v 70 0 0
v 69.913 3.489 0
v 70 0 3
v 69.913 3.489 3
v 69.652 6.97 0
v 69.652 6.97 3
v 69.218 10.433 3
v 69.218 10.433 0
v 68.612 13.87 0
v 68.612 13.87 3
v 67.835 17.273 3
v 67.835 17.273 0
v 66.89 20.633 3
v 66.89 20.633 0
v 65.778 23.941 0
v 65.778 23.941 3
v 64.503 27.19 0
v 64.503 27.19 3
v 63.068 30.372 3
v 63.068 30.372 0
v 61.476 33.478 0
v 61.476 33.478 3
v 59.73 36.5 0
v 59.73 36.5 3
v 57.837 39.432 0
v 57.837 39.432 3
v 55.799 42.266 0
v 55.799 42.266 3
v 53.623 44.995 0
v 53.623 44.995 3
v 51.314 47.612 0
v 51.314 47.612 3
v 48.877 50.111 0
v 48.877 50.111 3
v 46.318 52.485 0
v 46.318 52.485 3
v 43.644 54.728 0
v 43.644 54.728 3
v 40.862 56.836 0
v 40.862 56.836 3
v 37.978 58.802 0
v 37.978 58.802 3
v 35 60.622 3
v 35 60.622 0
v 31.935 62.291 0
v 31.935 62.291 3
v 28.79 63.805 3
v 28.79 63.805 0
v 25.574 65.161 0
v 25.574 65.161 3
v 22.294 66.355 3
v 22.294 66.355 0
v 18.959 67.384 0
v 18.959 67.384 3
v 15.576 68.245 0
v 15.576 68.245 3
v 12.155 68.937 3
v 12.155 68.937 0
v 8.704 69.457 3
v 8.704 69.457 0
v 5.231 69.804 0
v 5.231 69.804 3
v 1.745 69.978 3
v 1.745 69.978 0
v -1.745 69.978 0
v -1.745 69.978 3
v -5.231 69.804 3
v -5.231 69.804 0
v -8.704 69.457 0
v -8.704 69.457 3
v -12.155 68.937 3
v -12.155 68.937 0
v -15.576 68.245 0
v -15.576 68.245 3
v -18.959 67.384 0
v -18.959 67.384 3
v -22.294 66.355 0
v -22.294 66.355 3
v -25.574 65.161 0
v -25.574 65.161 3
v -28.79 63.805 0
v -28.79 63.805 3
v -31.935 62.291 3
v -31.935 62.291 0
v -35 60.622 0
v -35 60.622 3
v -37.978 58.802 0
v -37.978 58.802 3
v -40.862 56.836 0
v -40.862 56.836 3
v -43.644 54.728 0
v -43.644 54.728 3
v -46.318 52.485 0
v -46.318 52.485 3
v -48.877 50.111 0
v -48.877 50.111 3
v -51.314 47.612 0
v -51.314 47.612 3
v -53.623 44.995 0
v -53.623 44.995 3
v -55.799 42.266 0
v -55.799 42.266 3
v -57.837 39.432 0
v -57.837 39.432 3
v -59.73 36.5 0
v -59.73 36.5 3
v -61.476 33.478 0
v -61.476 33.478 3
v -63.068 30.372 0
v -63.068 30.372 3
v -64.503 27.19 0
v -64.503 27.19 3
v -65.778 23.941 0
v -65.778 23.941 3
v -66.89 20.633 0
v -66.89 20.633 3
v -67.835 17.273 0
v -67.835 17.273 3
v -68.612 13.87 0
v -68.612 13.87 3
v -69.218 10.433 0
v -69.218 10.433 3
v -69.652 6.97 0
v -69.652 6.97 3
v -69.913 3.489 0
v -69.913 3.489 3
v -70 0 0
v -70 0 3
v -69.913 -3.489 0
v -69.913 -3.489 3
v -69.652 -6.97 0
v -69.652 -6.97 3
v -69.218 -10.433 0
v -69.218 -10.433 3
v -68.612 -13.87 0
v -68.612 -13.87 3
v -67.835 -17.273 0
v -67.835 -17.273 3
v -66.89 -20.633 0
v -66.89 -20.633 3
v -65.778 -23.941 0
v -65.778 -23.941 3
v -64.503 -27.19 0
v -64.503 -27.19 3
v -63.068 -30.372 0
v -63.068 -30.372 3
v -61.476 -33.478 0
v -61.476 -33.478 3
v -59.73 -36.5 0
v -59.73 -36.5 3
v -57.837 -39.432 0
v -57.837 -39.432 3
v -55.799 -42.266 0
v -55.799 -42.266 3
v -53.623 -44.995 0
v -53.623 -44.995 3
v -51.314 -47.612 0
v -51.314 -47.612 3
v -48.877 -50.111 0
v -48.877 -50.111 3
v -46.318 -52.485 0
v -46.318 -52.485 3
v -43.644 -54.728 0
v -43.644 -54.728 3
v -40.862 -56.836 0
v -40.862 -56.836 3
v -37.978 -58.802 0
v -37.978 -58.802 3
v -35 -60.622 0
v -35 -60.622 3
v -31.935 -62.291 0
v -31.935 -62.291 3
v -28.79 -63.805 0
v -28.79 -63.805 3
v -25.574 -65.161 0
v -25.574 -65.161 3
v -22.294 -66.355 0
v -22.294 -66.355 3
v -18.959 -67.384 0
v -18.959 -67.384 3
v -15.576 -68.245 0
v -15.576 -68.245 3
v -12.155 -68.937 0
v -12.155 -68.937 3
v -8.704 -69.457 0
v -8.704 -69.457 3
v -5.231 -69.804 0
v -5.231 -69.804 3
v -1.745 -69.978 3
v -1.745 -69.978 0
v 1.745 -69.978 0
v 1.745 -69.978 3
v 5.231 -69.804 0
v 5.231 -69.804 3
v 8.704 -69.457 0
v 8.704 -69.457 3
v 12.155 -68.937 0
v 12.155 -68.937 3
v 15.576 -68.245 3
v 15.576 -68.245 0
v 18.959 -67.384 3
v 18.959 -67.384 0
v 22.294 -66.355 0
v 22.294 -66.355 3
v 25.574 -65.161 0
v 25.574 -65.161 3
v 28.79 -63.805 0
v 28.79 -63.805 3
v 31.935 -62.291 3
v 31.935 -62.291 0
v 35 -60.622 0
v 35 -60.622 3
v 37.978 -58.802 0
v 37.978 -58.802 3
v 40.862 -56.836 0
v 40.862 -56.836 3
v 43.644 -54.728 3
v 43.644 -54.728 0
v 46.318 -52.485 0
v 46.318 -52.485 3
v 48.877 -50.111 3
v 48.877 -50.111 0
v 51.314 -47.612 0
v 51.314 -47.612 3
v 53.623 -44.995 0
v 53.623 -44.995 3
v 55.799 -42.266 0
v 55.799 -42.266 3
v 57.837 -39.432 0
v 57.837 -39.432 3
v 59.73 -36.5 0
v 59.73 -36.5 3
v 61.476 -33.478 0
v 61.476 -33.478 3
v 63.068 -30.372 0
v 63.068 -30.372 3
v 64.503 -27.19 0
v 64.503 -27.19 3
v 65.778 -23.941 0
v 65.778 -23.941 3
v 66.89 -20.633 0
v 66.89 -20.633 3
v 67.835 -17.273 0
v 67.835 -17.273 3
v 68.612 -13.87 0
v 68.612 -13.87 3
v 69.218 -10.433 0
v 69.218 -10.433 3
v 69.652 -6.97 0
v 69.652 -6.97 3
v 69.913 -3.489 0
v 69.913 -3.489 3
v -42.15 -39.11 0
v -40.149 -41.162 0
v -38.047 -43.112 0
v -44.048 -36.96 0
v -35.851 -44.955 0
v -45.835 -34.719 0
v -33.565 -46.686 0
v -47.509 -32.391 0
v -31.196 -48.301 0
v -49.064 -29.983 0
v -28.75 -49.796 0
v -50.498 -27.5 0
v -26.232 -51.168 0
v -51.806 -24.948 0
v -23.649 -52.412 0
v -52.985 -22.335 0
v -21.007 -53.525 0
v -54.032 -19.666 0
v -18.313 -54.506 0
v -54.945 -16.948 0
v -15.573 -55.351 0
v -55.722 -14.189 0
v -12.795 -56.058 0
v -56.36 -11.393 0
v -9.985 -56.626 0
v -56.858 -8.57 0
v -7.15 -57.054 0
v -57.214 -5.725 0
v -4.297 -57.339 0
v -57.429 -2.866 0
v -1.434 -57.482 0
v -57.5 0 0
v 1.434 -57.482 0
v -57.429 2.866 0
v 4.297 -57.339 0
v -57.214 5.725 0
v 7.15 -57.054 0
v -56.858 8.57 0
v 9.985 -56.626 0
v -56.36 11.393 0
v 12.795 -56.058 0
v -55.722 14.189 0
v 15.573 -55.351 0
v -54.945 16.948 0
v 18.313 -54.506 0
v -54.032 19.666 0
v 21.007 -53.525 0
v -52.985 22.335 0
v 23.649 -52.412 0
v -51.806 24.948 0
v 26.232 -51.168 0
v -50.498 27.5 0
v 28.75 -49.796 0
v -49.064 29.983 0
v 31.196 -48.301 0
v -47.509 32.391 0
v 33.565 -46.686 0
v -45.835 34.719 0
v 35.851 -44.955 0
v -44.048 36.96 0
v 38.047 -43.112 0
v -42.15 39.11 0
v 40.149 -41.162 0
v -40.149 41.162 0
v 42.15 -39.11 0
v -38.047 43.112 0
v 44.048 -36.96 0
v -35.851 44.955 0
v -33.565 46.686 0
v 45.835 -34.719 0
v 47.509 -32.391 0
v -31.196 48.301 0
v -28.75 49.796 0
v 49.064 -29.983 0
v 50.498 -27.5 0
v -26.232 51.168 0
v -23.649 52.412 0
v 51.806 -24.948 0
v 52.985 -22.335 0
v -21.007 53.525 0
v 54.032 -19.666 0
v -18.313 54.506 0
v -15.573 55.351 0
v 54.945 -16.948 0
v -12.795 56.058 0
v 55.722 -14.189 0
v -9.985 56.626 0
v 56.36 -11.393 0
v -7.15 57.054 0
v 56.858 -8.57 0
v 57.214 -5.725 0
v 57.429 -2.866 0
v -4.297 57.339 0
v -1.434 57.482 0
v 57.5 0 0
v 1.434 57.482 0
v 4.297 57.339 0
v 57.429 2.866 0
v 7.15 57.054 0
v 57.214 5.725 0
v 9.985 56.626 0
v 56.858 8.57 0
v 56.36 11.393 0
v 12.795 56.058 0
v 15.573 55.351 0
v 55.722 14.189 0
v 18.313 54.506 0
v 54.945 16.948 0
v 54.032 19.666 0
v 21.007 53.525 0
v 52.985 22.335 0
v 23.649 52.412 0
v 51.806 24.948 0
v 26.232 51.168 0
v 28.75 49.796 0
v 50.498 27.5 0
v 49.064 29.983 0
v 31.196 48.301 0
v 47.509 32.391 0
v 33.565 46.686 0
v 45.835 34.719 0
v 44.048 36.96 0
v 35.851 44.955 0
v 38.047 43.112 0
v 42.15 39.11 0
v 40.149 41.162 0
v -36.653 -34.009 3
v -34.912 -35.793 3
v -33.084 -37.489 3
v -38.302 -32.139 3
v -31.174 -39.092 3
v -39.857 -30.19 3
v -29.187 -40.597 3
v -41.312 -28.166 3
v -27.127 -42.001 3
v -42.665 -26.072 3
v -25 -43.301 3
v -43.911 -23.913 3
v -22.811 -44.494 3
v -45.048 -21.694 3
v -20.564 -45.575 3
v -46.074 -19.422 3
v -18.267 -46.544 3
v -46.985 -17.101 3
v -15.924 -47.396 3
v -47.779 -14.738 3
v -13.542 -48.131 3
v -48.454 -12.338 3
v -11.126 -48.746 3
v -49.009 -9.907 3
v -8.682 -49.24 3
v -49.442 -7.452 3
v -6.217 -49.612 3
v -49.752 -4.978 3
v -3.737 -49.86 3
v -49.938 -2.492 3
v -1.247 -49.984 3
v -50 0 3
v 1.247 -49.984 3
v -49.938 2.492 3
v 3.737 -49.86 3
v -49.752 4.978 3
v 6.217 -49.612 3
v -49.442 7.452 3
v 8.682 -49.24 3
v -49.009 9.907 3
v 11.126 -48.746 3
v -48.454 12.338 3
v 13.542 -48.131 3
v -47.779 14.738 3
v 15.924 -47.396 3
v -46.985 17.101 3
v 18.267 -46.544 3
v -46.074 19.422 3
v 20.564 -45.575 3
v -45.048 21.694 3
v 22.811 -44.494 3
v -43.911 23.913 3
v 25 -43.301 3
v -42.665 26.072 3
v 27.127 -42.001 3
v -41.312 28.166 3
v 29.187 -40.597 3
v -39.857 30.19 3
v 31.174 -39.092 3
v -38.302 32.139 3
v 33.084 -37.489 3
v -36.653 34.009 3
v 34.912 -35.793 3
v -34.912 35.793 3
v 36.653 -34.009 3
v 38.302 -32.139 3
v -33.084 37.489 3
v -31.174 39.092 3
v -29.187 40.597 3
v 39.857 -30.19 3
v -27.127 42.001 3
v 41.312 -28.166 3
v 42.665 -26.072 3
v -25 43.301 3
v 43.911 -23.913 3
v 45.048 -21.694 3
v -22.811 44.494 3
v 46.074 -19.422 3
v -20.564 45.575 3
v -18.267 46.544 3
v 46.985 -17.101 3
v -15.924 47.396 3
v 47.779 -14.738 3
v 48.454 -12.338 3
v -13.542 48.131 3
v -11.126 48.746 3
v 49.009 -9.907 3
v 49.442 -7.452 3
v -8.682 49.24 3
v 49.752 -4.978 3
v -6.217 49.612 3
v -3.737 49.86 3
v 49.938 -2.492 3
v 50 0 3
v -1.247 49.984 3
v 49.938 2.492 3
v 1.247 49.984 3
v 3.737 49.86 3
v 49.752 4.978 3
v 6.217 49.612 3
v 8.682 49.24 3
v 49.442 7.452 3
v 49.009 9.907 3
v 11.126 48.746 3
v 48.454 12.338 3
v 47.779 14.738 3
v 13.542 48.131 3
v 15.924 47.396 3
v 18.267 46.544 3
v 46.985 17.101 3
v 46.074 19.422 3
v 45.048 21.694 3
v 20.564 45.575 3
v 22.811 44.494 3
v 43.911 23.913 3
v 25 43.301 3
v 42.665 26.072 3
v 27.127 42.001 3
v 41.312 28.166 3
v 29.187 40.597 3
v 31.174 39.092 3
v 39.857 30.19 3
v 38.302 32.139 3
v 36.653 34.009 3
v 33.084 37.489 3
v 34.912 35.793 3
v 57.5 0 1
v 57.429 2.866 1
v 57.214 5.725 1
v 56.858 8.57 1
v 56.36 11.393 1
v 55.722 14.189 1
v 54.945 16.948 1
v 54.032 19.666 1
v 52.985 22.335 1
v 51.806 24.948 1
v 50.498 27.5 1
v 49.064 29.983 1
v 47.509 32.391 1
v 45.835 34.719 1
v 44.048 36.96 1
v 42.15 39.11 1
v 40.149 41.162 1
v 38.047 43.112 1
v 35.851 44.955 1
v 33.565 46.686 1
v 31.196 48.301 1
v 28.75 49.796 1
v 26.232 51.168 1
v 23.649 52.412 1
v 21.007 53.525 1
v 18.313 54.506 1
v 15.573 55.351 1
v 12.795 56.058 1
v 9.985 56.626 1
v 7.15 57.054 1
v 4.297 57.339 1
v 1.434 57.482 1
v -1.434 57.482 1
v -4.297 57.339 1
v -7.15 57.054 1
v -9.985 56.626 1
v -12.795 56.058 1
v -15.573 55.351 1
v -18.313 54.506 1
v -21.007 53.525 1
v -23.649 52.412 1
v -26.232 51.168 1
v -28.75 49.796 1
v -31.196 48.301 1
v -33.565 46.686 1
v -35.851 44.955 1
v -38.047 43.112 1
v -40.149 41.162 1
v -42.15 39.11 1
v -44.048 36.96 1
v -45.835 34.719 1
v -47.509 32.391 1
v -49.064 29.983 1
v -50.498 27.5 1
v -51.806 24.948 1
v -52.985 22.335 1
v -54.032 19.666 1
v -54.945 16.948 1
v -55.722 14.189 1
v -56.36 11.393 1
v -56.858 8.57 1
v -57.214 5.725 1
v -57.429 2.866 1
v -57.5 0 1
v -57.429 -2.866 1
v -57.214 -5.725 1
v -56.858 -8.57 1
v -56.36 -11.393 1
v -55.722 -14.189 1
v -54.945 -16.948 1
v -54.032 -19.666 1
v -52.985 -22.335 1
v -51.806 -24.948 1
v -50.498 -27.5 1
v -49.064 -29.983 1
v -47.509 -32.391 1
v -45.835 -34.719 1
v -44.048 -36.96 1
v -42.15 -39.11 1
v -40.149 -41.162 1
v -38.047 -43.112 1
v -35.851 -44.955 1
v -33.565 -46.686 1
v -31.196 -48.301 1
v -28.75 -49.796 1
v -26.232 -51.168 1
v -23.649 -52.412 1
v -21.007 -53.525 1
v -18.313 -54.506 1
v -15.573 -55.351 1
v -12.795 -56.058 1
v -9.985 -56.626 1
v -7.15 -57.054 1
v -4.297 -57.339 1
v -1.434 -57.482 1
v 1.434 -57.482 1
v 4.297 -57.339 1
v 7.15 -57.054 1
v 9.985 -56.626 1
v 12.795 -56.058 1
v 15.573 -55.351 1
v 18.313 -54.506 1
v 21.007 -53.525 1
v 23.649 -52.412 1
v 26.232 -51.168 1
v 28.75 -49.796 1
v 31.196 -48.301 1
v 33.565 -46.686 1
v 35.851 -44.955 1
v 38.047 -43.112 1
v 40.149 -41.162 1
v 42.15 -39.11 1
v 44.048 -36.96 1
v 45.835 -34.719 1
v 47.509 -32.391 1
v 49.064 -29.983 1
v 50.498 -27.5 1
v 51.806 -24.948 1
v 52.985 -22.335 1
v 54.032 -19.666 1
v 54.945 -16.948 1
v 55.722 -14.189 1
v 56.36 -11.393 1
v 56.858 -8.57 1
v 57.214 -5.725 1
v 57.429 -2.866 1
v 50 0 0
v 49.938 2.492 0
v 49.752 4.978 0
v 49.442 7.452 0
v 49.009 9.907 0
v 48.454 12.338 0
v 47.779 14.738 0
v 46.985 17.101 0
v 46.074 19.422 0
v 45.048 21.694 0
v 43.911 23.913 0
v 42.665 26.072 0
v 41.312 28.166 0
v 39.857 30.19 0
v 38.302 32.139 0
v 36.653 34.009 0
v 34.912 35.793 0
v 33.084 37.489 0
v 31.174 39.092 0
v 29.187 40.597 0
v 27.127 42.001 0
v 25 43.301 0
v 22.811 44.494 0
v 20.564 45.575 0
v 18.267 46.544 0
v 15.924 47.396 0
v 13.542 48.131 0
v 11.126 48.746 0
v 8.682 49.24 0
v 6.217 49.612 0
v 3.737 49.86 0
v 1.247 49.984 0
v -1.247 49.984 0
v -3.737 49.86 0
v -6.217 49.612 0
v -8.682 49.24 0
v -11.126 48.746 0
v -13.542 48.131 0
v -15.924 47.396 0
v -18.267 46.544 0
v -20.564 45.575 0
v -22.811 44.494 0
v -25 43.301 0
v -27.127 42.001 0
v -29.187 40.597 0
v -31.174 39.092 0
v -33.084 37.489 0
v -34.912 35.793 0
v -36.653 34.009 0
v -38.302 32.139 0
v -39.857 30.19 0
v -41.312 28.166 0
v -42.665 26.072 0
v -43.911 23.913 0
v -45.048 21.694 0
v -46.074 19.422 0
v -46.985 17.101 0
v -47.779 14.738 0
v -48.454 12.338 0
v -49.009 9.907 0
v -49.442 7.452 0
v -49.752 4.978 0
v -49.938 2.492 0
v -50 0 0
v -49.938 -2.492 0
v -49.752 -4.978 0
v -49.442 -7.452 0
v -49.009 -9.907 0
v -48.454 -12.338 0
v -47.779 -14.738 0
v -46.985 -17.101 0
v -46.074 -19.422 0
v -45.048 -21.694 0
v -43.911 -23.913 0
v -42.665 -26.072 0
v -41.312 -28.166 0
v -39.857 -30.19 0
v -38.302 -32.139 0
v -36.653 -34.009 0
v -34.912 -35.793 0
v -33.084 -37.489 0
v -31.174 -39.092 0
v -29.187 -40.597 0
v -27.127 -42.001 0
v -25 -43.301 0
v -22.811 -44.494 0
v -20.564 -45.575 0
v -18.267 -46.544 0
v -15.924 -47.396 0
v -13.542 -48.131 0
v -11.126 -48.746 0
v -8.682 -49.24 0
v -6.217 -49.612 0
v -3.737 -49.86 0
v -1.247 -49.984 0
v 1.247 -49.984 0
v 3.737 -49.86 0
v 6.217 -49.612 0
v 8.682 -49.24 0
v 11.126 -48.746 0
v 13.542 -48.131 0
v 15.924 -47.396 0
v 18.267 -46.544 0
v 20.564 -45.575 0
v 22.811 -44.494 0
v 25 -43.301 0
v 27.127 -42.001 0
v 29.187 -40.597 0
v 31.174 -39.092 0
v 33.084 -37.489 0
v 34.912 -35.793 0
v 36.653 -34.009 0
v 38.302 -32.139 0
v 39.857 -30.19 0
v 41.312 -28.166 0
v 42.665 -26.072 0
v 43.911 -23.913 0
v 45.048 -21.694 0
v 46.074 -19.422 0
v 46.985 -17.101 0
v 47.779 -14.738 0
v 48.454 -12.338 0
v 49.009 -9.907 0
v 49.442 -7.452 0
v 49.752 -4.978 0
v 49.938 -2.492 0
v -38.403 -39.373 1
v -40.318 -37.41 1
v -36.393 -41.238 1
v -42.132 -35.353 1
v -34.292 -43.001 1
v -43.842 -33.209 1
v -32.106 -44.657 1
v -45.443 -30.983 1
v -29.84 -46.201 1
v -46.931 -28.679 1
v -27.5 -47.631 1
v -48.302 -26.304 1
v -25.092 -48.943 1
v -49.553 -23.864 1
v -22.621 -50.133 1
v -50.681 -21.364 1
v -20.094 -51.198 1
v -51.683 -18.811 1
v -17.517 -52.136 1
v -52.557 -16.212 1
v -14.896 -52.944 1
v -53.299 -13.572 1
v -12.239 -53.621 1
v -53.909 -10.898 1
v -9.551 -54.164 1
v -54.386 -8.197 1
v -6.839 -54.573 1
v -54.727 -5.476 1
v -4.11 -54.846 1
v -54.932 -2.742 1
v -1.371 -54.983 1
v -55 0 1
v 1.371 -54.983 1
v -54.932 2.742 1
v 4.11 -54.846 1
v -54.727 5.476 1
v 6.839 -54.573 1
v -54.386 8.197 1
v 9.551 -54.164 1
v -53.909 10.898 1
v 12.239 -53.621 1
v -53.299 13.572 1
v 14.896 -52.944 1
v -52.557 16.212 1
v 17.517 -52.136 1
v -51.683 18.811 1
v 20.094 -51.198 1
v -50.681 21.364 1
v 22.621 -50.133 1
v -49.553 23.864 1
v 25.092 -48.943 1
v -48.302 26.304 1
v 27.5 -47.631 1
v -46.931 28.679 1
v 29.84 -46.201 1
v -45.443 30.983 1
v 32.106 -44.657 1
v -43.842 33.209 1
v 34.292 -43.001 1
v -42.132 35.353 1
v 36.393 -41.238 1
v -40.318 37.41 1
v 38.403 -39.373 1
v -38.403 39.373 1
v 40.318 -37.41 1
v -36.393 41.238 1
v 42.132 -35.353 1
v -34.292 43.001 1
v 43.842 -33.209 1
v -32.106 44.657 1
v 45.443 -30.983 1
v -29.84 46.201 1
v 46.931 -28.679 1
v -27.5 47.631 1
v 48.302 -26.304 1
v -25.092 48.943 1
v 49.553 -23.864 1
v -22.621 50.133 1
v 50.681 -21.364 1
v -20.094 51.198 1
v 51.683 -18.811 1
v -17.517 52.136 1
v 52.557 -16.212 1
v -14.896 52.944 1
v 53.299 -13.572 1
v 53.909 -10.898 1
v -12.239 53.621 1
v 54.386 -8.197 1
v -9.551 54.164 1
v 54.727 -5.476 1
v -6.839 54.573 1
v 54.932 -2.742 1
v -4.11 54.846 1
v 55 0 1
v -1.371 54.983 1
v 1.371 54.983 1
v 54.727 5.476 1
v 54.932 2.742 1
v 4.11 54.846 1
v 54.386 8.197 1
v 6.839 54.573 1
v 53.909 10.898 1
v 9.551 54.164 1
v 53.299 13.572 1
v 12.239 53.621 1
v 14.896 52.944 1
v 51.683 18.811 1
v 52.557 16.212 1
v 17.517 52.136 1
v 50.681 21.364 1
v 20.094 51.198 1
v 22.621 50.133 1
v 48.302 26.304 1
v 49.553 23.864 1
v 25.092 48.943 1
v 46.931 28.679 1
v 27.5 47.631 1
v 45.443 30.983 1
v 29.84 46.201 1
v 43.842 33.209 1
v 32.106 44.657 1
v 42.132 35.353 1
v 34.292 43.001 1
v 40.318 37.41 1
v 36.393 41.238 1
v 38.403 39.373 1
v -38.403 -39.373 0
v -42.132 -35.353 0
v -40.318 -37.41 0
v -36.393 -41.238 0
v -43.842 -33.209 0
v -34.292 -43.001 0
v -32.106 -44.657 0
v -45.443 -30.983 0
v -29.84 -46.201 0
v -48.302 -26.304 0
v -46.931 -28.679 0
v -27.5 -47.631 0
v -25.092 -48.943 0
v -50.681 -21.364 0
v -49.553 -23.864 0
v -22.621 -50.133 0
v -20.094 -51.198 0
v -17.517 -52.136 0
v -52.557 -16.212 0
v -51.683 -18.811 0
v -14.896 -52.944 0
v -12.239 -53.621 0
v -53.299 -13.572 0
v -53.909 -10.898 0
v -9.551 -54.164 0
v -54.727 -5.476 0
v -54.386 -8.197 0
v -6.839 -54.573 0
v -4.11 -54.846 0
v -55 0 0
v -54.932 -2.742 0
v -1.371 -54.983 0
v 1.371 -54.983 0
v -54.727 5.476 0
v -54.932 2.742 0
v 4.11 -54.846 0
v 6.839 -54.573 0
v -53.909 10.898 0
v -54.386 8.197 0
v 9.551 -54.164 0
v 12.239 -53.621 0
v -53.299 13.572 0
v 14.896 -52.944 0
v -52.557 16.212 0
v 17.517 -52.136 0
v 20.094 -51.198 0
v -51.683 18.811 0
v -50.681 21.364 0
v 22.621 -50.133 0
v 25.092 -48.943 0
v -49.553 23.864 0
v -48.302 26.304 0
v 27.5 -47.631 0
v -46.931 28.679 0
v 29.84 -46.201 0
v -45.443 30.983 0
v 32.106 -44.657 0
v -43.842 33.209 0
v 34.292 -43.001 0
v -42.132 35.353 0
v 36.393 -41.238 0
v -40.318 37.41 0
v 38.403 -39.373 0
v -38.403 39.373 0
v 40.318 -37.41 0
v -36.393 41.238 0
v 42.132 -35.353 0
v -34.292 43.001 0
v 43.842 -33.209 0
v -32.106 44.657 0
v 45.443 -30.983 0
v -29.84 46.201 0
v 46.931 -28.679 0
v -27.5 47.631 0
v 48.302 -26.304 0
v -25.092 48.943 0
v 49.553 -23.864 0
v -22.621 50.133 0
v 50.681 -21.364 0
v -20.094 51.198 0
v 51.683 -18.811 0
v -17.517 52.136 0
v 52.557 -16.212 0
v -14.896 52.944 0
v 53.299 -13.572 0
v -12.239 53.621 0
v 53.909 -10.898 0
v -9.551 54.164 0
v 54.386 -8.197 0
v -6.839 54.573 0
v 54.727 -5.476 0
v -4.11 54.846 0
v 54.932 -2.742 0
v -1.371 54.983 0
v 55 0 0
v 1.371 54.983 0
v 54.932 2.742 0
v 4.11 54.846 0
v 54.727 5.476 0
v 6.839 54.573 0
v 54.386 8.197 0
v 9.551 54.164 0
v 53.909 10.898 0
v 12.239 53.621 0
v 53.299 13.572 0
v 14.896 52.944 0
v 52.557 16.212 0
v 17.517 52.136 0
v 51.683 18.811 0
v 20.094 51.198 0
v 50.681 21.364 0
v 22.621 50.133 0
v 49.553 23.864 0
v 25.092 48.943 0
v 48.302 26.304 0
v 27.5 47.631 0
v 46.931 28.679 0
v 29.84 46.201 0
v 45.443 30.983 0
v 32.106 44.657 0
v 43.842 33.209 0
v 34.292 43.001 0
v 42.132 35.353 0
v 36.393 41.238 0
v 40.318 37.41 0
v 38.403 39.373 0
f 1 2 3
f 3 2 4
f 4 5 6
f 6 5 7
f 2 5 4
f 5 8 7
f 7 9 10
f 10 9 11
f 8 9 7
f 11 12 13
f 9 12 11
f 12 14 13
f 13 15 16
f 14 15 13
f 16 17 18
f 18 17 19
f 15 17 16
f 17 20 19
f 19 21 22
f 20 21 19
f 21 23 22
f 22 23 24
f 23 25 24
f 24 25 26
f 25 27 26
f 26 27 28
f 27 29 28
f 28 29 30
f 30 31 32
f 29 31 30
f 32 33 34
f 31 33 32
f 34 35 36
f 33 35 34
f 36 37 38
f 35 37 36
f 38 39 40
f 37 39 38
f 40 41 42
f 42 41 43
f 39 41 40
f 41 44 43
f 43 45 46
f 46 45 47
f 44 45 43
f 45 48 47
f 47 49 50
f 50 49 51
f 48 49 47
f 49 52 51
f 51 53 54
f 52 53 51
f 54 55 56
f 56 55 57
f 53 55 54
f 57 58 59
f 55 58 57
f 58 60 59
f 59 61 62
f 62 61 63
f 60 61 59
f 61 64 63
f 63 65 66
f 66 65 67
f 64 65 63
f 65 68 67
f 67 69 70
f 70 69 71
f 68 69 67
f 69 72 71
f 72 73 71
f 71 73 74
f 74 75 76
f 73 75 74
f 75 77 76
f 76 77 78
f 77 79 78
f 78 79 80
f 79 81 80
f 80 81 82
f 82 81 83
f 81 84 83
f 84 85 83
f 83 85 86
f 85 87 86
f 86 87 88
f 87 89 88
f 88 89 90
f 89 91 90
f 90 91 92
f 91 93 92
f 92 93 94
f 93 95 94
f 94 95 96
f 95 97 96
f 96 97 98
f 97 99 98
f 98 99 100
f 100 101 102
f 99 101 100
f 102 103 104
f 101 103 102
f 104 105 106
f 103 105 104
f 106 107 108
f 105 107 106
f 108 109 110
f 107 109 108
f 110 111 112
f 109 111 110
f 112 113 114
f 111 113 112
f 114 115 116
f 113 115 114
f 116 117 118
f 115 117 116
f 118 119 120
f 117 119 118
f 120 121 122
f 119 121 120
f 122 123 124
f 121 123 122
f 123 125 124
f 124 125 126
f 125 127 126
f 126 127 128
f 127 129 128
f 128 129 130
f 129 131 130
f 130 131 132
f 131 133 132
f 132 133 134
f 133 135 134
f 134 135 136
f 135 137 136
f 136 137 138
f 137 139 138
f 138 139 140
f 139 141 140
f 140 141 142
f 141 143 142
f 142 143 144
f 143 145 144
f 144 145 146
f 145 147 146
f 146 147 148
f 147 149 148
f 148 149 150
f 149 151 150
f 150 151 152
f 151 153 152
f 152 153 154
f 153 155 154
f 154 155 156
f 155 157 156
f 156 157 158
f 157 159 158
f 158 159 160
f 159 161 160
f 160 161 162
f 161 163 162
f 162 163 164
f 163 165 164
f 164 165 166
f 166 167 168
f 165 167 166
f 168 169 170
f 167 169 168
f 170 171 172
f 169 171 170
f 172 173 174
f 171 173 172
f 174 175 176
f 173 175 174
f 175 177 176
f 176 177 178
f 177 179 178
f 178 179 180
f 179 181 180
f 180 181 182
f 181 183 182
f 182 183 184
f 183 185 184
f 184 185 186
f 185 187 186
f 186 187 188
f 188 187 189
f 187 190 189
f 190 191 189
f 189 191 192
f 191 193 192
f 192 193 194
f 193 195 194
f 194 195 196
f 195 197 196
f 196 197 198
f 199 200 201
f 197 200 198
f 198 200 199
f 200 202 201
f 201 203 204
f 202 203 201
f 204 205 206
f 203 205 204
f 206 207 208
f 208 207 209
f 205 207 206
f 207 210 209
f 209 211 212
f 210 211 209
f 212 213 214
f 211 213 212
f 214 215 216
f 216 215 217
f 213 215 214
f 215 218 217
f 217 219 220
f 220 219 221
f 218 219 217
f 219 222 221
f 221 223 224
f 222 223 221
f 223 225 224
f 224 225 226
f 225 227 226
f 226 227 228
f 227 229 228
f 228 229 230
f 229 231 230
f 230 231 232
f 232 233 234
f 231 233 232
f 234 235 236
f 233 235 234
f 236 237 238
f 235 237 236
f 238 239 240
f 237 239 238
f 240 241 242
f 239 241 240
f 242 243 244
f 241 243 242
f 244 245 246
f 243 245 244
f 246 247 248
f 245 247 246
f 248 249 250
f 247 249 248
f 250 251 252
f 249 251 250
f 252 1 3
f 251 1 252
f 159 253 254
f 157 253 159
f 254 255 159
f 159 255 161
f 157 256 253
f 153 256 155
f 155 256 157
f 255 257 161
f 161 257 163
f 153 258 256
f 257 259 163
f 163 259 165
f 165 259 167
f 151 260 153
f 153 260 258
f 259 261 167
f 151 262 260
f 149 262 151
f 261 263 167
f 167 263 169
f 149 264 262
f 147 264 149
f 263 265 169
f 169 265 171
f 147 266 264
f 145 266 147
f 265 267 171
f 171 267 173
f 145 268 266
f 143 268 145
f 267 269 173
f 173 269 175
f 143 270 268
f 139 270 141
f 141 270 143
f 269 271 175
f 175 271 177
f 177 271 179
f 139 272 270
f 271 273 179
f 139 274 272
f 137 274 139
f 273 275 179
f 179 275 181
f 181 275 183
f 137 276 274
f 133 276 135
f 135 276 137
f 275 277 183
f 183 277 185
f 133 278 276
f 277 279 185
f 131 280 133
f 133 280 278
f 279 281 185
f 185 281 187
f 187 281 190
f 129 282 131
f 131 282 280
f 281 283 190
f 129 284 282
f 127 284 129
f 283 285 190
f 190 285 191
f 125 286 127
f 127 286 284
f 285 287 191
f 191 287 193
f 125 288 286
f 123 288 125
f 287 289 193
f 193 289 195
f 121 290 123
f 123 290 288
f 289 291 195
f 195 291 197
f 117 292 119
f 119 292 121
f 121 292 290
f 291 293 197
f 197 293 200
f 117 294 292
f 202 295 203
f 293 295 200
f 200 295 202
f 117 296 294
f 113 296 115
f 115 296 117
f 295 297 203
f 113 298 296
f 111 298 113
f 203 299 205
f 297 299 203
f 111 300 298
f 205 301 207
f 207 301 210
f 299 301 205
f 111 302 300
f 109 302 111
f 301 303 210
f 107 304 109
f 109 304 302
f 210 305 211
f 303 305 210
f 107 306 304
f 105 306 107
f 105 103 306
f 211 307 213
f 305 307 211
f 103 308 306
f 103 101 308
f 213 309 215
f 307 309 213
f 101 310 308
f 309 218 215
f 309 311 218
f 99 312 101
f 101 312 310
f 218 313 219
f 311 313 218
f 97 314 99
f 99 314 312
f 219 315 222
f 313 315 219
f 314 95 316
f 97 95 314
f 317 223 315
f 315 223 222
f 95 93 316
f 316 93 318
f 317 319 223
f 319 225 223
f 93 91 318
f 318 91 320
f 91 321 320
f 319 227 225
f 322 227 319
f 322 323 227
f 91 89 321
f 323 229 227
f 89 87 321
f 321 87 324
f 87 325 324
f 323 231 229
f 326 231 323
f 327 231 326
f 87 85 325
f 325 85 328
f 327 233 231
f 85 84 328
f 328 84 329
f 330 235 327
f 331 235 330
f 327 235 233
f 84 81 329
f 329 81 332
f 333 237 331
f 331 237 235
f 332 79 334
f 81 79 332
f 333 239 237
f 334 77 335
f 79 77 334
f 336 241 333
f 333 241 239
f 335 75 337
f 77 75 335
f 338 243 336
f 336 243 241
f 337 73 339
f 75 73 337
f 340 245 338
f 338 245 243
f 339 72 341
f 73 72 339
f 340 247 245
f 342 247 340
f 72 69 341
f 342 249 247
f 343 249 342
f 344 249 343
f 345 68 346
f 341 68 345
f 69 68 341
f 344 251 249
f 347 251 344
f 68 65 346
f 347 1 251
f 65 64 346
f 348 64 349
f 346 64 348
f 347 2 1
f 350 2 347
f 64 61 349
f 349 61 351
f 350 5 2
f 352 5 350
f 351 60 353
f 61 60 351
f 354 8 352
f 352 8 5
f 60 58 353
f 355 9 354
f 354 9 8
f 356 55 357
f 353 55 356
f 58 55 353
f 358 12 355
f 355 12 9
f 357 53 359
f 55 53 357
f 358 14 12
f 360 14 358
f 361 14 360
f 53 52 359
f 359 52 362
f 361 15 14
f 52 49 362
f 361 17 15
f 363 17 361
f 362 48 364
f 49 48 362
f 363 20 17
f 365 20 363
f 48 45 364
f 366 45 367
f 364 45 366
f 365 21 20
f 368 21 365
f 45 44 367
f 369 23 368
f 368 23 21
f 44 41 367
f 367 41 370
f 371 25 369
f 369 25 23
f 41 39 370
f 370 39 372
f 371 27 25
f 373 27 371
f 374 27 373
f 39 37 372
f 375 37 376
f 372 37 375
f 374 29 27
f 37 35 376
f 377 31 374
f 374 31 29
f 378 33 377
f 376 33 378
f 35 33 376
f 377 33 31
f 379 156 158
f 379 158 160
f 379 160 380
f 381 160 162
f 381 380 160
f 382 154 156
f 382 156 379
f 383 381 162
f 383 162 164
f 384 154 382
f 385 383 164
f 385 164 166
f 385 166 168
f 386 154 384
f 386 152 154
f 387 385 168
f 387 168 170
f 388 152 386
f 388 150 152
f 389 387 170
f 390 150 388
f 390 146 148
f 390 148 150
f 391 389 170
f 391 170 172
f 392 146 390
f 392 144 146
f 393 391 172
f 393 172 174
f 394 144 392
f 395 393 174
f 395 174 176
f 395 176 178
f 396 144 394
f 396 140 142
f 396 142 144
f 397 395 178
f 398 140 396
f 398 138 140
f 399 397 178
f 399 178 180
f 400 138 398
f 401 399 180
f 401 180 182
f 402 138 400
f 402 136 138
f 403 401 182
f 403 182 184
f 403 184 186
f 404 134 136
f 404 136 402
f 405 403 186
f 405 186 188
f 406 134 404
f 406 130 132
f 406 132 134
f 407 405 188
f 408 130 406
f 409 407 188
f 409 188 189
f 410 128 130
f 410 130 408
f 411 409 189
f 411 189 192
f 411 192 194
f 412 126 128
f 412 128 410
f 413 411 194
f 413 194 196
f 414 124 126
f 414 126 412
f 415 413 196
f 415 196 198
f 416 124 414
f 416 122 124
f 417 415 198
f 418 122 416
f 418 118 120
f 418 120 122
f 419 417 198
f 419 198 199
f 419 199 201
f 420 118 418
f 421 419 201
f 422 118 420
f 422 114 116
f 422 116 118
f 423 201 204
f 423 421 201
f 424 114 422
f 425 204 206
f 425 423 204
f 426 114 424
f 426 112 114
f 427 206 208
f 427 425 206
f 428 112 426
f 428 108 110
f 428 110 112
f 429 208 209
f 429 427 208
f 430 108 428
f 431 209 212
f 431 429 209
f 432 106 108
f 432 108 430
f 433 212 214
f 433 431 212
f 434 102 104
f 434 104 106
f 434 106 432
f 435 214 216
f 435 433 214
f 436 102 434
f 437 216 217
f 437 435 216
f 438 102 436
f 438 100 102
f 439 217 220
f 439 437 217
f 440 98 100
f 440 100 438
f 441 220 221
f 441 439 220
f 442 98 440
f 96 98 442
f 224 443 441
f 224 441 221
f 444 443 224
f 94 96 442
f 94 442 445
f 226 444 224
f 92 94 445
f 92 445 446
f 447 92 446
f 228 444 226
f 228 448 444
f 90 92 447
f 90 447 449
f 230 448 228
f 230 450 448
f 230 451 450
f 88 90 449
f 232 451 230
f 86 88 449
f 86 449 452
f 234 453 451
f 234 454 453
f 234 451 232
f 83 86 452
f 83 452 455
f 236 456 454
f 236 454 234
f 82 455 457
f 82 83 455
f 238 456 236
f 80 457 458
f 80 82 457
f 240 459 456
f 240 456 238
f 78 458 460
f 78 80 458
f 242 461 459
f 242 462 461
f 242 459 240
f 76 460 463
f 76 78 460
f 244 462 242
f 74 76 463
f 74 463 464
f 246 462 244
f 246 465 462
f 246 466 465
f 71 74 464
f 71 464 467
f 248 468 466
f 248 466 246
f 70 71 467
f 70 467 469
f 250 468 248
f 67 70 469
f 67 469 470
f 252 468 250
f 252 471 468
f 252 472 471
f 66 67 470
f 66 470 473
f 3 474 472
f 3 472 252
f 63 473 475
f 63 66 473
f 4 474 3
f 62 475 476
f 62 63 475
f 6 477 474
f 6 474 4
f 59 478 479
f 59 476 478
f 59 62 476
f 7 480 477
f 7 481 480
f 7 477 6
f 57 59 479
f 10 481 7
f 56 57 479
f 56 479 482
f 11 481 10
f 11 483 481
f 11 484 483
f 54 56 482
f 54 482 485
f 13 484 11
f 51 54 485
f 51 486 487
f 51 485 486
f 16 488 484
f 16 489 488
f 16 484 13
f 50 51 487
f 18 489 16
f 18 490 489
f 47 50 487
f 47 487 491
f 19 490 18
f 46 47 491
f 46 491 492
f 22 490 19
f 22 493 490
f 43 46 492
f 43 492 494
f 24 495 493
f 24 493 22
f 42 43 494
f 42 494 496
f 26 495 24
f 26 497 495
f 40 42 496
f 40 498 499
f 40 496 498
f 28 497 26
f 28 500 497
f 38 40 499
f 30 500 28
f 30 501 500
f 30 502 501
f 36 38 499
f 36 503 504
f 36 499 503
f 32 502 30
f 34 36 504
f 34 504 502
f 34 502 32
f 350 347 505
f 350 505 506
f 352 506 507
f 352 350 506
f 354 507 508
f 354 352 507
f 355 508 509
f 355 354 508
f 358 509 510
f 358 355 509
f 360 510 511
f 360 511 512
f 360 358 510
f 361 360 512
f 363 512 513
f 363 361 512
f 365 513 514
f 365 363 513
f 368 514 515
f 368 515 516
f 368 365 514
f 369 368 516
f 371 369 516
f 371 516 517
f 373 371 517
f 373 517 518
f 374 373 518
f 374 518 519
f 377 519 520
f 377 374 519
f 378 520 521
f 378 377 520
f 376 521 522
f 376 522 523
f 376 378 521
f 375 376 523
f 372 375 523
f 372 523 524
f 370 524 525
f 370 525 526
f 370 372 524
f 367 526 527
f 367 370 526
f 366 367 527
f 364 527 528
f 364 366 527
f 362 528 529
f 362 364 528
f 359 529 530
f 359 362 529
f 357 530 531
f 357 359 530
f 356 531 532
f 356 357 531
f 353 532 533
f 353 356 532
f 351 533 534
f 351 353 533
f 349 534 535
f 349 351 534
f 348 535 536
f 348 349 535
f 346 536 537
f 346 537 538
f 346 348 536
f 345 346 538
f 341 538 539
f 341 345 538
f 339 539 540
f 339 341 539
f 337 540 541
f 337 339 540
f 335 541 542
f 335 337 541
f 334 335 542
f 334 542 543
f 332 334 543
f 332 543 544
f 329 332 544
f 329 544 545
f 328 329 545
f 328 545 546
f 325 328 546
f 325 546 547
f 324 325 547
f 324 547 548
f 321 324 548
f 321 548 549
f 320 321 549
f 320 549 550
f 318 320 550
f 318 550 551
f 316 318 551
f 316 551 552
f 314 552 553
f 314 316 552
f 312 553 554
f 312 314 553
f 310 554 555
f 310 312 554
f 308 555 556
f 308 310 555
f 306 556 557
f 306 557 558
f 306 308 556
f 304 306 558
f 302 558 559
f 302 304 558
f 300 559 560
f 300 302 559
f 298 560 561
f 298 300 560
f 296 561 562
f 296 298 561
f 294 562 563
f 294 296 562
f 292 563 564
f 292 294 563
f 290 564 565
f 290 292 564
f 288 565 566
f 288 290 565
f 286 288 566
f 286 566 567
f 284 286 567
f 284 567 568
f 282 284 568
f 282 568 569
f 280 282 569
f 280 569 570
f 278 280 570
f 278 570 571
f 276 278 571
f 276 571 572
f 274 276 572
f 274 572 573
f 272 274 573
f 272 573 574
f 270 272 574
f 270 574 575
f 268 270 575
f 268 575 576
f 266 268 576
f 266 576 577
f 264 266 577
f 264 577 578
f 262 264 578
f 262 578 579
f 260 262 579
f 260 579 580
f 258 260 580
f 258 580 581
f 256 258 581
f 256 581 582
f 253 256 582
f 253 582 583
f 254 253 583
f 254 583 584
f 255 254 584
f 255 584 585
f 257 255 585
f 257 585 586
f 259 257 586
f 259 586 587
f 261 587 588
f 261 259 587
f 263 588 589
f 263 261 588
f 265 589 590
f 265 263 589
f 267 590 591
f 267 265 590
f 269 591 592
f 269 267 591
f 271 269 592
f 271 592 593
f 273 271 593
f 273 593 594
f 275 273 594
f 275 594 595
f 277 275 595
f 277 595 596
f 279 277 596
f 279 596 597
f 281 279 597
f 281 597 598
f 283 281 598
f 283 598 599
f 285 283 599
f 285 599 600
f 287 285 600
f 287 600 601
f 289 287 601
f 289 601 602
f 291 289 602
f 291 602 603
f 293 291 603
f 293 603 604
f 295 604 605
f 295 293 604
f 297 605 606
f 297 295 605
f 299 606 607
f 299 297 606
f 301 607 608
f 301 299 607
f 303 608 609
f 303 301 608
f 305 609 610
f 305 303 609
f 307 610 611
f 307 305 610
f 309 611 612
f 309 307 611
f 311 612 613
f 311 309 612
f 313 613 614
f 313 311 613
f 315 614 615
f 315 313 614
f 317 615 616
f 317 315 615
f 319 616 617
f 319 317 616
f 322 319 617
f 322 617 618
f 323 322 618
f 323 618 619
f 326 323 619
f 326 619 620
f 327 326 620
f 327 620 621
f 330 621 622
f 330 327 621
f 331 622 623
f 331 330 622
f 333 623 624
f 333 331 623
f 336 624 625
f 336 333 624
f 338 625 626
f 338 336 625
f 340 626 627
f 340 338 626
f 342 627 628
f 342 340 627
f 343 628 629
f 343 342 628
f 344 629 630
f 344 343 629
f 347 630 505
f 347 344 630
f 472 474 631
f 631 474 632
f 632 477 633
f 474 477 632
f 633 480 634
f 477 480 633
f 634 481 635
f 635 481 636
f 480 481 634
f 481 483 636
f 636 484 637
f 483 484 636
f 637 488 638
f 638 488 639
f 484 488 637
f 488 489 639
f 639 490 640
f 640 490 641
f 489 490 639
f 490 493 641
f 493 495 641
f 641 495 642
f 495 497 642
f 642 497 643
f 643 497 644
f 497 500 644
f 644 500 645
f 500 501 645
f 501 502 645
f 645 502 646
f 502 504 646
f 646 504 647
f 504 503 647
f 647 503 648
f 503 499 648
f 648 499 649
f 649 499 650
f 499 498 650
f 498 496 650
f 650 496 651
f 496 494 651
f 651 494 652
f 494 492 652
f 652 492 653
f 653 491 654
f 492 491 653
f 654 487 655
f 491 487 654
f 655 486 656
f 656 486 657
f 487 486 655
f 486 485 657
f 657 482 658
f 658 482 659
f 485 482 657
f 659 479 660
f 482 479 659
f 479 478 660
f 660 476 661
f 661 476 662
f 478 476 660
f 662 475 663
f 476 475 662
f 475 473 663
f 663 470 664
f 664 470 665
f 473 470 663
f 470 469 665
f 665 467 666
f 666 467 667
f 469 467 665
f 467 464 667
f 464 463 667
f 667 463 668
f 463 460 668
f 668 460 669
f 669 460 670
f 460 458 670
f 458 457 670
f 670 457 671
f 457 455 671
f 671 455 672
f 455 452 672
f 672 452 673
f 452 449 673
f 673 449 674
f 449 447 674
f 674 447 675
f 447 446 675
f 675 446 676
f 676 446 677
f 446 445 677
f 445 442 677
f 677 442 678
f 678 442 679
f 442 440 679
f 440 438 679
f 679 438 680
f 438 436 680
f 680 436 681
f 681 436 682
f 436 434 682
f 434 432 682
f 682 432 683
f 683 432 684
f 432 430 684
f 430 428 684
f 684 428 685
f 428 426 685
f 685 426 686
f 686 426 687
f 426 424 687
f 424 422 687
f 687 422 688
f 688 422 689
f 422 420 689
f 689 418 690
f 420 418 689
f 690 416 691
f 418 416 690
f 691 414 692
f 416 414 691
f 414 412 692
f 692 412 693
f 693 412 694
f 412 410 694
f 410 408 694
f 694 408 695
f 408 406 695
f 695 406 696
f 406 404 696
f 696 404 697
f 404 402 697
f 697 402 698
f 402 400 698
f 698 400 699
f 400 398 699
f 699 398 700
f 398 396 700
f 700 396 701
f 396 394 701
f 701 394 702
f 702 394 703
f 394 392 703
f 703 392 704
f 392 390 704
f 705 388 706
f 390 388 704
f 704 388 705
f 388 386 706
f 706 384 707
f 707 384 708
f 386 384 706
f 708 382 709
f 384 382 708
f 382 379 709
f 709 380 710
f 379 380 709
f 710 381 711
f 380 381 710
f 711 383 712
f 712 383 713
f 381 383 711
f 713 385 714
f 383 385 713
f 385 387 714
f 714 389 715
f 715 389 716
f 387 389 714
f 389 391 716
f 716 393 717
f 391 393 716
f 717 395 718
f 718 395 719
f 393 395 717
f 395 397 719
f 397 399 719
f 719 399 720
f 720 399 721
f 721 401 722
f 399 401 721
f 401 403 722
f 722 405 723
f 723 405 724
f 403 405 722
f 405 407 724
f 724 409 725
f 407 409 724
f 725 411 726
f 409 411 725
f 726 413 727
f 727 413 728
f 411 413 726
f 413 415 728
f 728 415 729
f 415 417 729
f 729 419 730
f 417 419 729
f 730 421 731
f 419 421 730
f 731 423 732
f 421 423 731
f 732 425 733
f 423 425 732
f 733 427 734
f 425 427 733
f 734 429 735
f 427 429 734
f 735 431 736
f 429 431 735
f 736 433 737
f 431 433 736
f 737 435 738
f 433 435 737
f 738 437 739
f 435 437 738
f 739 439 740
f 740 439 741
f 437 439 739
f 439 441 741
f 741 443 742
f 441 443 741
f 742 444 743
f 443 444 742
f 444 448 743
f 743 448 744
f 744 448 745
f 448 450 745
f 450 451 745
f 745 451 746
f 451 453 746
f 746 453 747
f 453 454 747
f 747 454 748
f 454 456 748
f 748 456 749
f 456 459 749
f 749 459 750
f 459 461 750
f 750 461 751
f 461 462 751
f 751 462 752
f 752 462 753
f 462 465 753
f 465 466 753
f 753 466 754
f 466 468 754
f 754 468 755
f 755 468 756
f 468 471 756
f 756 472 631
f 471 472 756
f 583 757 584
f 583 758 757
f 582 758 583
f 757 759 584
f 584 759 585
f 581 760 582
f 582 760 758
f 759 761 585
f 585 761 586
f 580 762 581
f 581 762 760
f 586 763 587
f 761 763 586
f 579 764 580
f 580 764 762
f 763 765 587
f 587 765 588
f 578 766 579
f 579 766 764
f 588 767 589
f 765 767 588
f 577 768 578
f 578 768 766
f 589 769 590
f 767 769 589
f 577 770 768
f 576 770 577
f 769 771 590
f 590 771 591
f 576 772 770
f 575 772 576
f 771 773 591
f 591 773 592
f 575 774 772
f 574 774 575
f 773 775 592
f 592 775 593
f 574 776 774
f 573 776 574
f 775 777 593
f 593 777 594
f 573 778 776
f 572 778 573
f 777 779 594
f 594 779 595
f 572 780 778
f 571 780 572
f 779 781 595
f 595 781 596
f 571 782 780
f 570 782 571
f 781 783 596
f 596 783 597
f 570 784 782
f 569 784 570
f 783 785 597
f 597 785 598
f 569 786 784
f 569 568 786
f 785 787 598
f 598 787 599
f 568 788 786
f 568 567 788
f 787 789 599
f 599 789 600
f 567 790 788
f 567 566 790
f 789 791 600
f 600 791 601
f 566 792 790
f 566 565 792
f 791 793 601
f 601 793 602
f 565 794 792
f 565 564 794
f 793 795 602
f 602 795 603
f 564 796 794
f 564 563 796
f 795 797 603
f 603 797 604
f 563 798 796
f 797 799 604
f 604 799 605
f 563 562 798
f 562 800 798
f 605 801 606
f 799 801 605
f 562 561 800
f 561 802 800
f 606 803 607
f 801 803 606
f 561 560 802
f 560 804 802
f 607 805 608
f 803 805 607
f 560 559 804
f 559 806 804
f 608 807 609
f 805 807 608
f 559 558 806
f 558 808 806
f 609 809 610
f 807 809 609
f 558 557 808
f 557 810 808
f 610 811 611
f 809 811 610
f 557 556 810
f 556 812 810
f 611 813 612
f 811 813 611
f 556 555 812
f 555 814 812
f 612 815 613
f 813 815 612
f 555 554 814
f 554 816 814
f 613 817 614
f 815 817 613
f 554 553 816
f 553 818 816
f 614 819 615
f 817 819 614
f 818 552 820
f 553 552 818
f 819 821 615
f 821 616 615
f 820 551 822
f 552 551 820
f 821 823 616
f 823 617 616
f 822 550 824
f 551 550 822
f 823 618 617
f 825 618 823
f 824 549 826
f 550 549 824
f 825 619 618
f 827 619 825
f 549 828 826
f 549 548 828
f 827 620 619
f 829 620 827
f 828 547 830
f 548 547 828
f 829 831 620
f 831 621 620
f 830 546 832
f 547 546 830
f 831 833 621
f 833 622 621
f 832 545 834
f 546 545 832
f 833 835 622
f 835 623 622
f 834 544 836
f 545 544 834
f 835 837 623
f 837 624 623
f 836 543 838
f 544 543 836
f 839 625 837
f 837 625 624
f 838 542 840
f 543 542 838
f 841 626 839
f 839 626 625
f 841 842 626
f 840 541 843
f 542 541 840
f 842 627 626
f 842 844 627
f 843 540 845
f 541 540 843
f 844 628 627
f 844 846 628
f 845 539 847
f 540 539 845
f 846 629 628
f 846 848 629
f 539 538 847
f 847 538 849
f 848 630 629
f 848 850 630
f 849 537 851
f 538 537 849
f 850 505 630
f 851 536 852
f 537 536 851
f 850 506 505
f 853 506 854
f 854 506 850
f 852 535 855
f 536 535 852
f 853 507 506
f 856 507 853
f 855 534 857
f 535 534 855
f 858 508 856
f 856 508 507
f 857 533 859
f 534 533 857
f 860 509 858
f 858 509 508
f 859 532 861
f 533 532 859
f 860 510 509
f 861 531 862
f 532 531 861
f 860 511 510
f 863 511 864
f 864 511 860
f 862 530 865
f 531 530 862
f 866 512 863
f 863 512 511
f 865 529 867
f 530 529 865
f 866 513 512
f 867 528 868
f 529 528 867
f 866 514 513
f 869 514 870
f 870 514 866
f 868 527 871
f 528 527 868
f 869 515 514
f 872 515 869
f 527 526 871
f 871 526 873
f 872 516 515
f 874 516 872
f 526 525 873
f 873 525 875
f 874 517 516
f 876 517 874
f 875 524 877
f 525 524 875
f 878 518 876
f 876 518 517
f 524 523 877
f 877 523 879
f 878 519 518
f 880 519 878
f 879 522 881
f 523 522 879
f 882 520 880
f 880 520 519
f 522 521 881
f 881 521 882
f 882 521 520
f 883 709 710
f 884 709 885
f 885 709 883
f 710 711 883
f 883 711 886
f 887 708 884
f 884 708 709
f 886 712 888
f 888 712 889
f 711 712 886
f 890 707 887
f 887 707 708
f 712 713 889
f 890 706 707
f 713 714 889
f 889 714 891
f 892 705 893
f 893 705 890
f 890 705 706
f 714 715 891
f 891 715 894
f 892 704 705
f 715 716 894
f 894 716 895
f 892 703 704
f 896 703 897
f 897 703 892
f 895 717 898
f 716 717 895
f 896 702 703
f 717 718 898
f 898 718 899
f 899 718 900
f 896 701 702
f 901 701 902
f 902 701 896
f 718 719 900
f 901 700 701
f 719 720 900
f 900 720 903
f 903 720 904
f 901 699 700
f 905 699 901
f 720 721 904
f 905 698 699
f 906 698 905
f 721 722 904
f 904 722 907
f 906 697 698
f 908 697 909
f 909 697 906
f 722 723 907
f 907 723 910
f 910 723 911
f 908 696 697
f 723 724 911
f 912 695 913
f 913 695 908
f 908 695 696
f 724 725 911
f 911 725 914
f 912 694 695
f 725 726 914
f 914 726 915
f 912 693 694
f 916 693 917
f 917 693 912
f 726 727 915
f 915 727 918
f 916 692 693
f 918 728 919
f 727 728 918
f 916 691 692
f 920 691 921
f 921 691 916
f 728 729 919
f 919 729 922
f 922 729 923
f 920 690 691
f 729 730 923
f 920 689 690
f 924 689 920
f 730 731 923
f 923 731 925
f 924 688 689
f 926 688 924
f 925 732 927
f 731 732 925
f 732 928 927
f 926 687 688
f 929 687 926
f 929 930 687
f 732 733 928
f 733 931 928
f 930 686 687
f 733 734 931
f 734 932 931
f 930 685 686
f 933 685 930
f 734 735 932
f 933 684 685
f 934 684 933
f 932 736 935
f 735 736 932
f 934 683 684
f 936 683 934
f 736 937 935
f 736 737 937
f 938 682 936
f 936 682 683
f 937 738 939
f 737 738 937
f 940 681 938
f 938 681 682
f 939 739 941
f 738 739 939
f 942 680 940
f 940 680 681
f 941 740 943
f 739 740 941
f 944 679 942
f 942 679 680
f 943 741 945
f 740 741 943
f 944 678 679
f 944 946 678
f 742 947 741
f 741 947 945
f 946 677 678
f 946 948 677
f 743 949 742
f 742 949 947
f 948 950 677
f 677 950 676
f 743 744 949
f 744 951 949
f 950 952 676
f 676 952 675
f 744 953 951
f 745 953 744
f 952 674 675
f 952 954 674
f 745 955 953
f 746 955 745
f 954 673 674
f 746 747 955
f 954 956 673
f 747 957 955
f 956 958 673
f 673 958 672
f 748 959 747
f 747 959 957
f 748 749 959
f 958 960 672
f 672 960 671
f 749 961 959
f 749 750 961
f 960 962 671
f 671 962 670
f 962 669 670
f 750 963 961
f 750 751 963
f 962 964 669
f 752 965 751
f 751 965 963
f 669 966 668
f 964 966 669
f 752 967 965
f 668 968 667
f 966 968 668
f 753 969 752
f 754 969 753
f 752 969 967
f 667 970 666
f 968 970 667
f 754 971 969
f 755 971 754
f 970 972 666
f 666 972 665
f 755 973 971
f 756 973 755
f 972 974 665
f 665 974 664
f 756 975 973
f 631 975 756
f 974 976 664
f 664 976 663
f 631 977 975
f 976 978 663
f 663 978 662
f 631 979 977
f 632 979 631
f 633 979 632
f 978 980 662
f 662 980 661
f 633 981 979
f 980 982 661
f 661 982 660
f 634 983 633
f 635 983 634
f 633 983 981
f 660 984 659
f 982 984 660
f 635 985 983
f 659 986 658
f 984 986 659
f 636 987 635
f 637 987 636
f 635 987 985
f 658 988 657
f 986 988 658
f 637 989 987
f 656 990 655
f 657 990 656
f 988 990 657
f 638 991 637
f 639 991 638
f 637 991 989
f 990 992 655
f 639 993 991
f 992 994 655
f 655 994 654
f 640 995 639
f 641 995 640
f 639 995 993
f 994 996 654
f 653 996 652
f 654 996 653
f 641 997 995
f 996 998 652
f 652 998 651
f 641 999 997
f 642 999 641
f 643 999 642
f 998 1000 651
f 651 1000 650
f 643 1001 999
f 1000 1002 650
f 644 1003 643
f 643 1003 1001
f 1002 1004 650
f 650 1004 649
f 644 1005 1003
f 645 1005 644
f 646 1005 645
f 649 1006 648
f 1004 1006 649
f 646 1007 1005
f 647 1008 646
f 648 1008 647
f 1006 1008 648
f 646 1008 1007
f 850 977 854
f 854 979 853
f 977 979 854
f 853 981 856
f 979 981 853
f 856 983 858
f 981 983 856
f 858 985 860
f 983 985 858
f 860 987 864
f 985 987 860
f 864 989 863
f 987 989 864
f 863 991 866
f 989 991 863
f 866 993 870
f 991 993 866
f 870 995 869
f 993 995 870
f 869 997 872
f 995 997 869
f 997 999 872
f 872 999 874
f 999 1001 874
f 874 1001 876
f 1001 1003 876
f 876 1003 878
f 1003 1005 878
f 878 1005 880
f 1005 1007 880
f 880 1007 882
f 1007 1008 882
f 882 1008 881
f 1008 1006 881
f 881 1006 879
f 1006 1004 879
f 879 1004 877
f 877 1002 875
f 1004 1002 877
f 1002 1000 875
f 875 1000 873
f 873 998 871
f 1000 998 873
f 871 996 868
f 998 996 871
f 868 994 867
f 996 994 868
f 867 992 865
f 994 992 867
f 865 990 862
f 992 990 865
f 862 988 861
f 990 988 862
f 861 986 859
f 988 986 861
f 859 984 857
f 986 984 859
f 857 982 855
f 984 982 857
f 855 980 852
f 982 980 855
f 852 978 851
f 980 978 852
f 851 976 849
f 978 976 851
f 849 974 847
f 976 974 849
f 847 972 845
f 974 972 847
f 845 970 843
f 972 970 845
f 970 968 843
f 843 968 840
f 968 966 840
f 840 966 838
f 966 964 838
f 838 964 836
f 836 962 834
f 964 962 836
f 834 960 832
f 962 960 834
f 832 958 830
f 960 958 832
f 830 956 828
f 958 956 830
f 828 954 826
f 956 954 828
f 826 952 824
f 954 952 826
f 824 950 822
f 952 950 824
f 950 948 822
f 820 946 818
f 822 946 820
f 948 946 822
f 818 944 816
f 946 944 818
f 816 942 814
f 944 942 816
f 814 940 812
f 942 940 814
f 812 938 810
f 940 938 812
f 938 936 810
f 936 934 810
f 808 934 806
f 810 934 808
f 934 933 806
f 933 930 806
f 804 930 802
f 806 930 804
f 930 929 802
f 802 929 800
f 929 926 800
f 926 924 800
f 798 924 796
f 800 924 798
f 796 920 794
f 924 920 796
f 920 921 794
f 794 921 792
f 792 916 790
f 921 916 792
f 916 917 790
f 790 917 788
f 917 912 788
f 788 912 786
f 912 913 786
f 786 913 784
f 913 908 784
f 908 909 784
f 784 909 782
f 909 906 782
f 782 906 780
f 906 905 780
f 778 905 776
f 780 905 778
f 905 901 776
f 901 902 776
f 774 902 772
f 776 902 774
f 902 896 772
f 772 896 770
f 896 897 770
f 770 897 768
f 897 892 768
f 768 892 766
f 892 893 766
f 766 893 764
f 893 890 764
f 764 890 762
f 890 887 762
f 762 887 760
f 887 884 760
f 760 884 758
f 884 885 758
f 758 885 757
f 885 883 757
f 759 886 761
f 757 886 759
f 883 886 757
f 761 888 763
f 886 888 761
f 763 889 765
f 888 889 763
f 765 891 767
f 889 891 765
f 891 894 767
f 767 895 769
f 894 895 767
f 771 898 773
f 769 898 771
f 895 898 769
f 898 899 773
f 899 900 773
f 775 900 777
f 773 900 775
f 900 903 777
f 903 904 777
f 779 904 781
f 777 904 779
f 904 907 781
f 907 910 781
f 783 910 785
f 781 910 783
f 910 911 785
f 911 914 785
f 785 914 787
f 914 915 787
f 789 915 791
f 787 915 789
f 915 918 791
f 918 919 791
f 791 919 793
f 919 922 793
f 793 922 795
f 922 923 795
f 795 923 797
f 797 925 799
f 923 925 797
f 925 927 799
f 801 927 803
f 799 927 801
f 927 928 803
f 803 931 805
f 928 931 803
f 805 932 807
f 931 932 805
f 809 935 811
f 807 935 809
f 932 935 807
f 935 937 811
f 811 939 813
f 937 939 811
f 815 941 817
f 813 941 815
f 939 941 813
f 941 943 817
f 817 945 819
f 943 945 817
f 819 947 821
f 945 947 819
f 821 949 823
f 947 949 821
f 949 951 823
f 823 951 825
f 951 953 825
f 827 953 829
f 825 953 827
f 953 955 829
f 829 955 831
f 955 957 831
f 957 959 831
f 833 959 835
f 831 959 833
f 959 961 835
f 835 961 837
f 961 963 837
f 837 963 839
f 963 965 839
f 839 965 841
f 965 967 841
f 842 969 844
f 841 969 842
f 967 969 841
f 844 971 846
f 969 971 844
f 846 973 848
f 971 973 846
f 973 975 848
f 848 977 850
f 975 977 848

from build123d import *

# Parameters (mm, degrees)
SKETCH_R             = 70
PAD_DEPTH            = 3
SKETCH001_R          = 57.5
POCKET_DEPTH         = 1
SKETCH002_R          = 55
PAD001_DEPTH         = 3
SKETCH003_R          = 50
POCKET001_DEPTH      = 0.001
POCKET001_DEPTH_BACK = -3.001


with BuildPart() as part:
    # Sketch → Pad (new body)
    with BuildSketch(Plane.XY):
        Circle(SKETCH_R)
    extrude(amount=PAD_DEPTH)

    # Sketch001 → Pocket (cut)
    with BuildSketch(Plane.XY):
        Circle(SKETCH001_R)
    extrude(amount=POCKET_DEPTH, mode=Mode.SUBTRACT)

    # Sketch002 → Pad001 (join)
    with BuildSketch(Plane.XY):
        Circle(SKETCH002_R)
    extrude(amount=PAD001_DEPTH)

    # Sketch003 → Pocket001 (cut, two sides)
    with BuildSketch(Plane.XY) as pocket001_sk:
        Circle(SKETCH003_R)
    extrude(amount=-POCKET001_DEPTH, mode=Mode.SUBTRACT)
    extrude(pocket001_sk.sketch, amount=-POCKET001_DEPTH_BACK, mode=Mode.SUBTRACT)


solid = part.part
